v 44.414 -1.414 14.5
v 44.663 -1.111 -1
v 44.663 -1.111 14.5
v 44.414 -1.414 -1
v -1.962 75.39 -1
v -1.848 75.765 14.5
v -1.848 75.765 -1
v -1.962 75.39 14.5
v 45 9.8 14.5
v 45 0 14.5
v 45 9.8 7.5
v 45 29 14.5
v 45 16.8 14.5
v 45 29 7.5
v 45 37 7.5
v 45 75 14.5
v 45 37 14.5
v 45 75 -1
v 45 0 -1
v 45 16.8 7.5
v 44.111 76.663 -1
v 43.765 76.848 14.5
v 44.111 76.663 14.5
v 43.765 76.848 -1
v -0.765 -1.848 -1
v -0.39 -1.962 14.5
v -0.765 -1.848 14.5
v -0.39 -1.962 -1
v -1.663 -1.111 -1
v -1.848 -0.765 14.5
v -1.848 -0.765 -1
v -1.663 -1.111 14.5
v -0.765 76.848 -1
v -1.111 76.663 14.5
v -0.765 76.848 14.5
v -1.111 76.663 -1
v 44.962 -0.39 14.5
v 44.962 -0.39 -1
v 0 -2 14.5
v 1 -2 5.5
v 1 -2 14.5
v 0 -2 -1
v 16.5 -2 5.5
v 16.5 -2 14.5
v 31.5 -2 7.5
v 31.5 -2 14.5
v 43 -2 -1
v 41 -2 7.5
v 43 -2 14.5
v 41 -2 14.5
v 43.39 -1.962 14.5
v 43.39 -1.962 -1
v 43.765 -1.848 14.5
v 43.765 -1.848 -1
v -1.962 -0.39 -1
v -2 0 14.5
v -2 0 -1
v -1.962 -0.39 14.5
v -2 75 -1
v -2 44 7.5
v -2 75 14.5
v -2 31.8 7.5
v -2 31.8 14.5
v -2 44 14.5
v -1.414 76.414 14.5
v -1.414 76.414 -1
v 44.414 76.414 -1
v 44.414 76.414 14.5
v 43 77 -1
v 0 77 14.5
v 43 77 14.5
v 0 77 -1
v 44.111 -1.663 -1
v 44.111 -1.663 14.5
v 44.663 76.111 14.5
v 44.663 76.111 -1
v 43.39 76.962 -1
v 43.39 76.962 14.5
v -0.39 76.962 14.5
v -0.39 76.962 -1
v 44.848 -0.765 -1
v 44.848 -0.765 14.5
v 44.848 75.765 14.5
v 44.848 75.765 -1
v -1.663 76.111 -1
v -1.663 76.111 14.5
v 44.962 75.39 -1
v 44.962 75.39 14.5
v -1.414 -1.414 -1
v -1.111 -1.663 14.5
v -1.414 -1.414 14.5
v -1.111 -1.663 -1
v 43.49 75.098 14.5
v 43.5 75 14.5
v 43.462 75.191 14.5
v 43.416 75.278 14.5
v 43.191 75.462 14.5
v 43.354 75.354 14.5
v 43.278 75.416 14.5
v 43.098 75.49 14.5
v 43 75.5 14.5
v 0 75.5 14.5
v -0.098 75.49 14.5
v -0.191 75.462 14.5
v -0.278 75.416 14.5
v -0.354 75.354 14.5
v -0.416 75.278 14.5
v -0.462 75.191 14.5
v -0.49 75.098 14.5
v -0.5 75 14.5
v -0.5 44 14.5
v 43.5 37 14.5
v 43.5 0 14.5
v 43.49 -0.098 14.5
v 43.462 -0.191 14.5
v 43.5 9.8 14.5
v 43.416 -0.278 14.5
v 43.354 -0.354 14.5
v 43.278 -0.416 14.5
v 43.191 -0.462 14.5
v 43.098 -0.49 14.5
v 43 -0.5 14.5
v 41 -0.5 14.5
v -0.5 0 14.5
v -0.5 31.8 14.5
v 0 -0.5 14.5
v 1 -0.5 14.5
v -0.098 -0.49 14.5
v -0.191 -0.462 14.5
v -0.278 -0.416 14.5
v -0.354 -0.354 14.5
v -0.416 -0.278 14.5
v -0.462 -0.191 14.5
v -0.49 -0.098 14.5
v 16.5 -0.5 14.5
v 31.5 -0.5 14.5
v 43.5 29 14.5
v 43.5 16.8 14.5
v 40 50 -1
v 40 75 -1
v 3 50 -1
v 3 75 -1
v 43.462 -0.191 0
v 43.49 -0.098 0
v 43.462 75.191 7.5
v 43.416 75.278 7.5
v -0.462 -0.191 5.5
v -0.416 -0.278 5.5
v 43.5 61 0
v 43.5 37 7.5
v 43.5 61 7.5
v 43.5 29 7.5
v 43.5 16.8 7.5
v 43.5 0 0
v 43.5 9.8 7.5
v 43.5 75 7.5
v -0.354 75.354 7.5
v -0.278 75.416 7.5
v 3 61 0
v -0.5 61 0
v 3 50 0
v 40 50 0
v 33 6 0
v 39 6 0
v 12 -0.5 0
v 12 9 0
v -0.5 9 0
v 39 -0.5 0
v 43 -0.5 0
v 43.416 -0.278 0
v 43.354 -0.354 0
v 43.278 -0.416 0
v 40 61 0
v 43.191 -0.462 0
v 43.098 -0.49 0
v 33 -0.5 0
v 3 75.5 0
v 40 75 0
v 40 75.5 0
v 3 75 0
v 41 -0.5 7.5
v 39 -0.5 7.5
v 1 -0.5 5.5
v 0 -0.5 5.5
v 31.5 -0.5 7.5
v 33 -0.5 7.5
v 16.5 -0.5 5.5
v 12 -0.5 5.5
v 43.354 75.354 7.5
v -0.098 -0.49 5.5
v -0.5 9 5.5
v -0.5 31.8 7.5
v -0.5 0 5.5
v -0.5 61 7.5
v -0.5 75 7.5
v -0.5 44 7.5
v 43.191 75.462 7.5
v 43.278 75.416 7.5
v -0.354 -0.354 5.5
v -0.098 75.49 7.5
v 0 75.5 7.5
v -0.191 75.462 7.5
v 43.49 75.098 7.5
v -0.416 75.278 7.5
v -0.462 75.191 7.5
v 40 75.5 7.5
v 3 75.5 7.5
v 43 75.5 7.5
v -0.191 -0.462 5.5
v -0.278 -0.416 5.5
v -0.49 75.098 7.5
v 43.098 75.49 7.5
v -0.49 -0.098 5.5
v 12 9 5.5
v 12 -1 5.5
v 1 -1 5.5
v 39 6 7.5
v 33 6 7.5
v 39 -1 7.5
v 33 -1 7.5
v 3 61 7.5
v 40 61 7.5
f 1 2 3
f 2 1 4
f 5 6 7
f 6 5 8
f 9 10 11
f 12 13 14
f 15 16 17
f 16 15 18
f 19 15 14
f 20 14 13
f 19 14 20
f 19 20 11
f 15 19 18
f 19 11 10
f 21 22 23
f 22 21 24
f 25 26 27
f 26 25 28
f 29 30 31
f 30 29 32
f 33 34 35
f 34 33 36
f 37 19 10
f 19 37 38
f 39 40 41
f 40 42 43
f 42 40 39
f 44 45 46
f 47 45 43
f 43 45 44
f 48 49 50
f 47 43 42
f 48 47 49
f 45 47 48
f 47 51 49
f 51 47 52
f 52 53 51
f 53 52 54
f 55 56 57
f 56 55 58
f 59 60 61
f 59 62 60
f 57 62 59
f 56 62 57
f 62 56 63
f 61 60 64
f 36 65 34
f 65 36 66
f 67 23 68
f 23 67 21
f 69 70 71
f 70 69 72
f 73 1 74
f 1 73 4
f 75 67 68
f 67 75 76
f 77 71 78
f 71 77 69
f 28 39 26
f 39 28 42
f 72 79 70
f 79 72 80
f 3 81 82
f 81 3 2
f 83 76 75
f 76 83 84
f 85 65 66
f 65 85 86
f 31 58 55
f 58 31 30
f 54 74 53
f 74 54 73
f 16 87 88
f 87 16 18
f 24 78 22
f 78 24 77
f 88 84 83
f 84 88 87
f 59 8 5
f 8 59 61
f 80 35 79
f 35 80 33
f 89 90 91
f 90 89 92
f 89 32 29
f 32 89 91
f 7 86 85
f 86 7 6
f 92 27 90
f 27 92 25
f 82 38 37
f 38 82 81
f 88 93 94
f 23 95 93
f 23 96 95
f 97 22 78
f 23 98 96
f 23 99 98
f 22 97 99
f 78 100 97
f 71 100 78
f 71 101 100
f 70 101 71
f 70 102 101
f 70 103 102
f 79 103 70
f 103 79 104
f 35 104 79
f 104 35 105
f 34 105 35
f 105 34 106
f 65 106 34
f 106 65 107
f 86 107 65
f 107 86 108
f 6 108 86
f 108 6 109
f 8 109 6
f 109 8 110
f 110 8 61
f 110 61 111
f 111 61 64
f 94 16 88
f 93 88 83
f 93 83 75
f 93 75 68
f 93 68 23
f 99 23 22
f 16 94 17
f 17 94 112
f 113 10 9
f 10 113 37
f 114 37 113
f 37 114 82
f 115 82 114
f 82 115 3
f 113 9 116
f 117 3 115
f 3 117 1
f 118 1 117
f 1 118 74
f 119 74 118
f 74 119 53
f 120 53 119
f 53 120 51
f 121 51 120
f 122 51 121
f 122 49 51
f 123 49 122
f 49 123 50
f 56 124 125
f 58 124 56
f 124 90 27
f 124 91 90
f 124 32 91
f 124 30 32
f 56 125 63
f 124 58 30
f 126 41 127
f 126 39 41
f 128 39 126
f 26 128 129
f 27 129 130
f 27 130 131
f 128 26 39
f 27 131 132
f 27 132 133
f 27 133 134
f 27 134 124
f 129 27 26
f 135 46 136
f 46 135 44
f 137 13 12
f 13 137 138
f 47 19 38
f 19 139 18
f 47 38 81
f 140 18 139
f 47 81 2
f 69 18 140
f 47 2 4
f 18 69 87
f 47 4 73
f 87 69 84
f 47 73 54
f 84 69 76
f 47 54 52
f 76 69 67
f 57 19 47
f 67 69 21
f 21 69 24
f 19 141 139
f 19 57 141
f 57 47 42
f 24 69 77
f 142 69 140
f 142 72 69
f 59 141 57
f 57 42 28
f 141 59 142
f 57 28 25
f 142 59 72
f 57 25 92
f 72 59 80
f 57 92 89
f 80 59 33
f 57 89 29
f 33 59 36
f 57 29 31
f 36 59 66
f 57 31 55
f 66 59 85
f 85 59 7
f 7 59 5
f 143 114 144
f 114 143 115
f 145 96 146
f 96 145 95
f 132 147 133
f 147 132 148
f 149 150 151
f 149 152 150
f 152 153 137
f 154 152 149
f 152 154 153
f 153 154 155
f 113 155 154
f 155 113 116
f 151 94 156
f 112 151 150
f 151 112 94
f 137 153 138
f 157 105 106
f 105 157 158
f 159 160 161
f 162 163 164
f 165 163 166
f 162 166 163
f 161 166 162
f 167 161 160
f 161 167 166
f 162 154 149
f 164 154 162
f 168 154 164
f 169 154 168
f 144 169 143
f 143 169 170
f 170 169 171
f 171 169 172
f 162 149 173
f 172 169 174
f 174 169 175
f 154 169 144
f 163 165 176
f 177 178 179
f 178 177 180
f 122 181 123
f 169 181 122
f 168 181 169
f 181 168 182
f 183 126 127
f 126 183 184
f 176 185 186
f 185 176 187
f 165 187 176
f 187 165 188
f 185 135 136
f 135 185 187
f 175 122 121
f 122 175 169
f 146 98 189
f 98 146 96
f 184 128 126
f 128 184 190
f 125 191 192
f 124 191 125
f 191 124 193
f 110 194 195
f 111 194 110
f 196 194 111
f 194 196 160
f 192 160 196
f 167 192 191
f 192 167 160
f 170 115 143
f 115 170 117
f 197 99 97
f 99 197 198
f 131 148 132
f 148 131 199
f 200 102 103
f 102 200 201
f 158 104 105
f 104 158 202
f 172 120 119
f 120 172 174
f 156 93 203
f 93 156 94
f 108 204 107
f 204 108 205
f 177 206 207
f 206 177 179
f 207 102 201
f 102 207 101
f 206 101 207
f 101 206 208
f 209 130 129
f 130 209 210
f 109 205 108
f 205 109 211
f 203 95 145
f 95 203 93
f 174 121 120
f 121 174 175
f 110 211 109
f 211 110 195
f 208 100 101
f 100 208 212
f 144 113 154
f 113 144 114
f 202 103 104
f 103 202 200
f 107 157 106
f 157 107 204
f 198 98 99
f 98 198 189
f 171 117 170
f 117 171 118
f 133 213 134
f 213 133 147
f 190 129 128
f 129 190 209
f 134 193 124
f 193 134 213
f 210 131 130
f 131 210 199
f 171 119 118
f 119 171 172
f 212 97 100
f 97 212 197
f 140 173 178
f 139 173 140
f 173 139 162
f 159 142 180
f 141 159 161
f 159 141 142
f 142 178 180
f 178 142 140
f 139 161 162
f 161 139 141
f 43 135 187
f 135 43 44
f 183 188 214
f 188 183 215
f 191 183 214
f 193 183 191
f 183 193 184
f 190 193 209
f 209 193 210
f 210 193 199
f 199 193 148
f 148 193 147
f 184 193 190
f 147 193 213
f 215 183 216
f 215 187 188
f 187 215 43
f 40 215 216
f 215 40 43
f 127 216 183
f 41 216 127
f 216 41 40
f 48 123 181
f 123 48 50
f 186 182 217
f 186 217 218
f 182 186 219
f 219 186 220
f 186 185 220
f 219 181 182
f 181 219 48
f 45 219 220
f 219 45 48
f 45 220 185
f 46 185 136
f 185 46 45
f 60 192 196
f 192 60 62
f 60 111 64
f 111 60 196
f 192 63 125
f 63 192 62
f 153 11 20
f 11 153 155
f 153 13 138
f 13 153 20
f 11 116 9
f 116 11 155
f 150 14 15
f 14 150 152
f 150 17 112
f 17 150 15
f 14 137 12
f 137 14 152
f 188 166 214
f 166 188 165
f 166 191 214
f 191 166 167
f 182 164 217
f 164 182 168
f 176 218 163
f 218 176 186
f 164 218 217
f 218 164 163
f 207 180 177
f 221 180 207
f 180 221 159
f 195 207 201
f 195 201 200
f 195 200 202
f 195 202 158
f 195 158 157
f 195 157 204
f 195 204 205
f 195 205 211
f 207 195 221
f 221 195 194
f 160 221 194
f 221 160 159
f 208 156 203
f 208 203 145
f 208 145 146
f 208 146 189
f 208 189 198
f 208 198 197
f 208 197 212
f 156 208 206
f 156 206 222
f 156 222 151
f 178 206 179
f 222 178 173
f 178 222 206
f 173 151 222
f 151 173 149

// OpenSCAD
$fn=32;

IN_X = 43;
IN_Y = 75;
PCB_Z_OFFSET = 7.5;
IN_Z = PCB_Z_OFFSET + 7;
BORDER = 1.5;
module pcb() {
    square([IN_X,IN_Y]);
}

module bottom() {
    difference() {
        translate([0,0,-1]) linear_extrude(IN_Z+1) offset(0.5+BORDER) pcb();
        linear_extrude(99) offset(0.5) pcb();
        // Screen hole
        translate([(IN_X-37)/2,50,-6]) cube([37,25,99]);
        translate([1,-5,PCB_Z_OFFSET-2.0])  cube([15.5,10,2.5+99]); //sd
        translate([31.5,-5,PCB_Z_OFFSET]) cube([9.5, 10, 3.5+99]); //typec
        translate([-5, 32.8-1,PCB_Z_OFFSET]) cube([5,10.2+2,2.5+99]); // BTN
        translate([IN_X,10.8-1,PCB_Z_OFFSET]) cube([5,5+2,5+99]); // Power
        translate([IN_X, 30-1, PCB_Z_OFFSET])cube([5,6+2,5.5+99]); // Headphone
    }
    translate([-1,-1,0]) cube([13,10,PCB_Z_OFFSET-2.0]); // SD
    translate([33,-1,0]) cube([6,7,PCB_Z_OFFSET]);
    // Add cube on the left & right side of screen
    translate([-1,IN_Y-14,0]) cube([4,15,PCB_Z_OFFSET]);
    translate([IN_X-3,IN_Y-14,0]) cube([4,15,PCB_Z_OFFSET]);
}

module top() {
    translate([0,0, IN_Z])
    difference() {
        linear_extrude(BORDER) offset(0.5+BORDER) 
        pcb();
        translate([(IN_X-37)/2,50,-6]) cube([37,25,99]);
    }
    //translate([-1,IN_Y-14,IN_Z-4.5]) cube([3,10,4.5]);
    //translate([IN_X-3,IN_Y-14,IN_Z-4.5]) cube([3,10,4.5]);
    //translate([31.5, 14, IN_Z-6]) cube([4, 4, 6]);
}

bottom();
//top();
